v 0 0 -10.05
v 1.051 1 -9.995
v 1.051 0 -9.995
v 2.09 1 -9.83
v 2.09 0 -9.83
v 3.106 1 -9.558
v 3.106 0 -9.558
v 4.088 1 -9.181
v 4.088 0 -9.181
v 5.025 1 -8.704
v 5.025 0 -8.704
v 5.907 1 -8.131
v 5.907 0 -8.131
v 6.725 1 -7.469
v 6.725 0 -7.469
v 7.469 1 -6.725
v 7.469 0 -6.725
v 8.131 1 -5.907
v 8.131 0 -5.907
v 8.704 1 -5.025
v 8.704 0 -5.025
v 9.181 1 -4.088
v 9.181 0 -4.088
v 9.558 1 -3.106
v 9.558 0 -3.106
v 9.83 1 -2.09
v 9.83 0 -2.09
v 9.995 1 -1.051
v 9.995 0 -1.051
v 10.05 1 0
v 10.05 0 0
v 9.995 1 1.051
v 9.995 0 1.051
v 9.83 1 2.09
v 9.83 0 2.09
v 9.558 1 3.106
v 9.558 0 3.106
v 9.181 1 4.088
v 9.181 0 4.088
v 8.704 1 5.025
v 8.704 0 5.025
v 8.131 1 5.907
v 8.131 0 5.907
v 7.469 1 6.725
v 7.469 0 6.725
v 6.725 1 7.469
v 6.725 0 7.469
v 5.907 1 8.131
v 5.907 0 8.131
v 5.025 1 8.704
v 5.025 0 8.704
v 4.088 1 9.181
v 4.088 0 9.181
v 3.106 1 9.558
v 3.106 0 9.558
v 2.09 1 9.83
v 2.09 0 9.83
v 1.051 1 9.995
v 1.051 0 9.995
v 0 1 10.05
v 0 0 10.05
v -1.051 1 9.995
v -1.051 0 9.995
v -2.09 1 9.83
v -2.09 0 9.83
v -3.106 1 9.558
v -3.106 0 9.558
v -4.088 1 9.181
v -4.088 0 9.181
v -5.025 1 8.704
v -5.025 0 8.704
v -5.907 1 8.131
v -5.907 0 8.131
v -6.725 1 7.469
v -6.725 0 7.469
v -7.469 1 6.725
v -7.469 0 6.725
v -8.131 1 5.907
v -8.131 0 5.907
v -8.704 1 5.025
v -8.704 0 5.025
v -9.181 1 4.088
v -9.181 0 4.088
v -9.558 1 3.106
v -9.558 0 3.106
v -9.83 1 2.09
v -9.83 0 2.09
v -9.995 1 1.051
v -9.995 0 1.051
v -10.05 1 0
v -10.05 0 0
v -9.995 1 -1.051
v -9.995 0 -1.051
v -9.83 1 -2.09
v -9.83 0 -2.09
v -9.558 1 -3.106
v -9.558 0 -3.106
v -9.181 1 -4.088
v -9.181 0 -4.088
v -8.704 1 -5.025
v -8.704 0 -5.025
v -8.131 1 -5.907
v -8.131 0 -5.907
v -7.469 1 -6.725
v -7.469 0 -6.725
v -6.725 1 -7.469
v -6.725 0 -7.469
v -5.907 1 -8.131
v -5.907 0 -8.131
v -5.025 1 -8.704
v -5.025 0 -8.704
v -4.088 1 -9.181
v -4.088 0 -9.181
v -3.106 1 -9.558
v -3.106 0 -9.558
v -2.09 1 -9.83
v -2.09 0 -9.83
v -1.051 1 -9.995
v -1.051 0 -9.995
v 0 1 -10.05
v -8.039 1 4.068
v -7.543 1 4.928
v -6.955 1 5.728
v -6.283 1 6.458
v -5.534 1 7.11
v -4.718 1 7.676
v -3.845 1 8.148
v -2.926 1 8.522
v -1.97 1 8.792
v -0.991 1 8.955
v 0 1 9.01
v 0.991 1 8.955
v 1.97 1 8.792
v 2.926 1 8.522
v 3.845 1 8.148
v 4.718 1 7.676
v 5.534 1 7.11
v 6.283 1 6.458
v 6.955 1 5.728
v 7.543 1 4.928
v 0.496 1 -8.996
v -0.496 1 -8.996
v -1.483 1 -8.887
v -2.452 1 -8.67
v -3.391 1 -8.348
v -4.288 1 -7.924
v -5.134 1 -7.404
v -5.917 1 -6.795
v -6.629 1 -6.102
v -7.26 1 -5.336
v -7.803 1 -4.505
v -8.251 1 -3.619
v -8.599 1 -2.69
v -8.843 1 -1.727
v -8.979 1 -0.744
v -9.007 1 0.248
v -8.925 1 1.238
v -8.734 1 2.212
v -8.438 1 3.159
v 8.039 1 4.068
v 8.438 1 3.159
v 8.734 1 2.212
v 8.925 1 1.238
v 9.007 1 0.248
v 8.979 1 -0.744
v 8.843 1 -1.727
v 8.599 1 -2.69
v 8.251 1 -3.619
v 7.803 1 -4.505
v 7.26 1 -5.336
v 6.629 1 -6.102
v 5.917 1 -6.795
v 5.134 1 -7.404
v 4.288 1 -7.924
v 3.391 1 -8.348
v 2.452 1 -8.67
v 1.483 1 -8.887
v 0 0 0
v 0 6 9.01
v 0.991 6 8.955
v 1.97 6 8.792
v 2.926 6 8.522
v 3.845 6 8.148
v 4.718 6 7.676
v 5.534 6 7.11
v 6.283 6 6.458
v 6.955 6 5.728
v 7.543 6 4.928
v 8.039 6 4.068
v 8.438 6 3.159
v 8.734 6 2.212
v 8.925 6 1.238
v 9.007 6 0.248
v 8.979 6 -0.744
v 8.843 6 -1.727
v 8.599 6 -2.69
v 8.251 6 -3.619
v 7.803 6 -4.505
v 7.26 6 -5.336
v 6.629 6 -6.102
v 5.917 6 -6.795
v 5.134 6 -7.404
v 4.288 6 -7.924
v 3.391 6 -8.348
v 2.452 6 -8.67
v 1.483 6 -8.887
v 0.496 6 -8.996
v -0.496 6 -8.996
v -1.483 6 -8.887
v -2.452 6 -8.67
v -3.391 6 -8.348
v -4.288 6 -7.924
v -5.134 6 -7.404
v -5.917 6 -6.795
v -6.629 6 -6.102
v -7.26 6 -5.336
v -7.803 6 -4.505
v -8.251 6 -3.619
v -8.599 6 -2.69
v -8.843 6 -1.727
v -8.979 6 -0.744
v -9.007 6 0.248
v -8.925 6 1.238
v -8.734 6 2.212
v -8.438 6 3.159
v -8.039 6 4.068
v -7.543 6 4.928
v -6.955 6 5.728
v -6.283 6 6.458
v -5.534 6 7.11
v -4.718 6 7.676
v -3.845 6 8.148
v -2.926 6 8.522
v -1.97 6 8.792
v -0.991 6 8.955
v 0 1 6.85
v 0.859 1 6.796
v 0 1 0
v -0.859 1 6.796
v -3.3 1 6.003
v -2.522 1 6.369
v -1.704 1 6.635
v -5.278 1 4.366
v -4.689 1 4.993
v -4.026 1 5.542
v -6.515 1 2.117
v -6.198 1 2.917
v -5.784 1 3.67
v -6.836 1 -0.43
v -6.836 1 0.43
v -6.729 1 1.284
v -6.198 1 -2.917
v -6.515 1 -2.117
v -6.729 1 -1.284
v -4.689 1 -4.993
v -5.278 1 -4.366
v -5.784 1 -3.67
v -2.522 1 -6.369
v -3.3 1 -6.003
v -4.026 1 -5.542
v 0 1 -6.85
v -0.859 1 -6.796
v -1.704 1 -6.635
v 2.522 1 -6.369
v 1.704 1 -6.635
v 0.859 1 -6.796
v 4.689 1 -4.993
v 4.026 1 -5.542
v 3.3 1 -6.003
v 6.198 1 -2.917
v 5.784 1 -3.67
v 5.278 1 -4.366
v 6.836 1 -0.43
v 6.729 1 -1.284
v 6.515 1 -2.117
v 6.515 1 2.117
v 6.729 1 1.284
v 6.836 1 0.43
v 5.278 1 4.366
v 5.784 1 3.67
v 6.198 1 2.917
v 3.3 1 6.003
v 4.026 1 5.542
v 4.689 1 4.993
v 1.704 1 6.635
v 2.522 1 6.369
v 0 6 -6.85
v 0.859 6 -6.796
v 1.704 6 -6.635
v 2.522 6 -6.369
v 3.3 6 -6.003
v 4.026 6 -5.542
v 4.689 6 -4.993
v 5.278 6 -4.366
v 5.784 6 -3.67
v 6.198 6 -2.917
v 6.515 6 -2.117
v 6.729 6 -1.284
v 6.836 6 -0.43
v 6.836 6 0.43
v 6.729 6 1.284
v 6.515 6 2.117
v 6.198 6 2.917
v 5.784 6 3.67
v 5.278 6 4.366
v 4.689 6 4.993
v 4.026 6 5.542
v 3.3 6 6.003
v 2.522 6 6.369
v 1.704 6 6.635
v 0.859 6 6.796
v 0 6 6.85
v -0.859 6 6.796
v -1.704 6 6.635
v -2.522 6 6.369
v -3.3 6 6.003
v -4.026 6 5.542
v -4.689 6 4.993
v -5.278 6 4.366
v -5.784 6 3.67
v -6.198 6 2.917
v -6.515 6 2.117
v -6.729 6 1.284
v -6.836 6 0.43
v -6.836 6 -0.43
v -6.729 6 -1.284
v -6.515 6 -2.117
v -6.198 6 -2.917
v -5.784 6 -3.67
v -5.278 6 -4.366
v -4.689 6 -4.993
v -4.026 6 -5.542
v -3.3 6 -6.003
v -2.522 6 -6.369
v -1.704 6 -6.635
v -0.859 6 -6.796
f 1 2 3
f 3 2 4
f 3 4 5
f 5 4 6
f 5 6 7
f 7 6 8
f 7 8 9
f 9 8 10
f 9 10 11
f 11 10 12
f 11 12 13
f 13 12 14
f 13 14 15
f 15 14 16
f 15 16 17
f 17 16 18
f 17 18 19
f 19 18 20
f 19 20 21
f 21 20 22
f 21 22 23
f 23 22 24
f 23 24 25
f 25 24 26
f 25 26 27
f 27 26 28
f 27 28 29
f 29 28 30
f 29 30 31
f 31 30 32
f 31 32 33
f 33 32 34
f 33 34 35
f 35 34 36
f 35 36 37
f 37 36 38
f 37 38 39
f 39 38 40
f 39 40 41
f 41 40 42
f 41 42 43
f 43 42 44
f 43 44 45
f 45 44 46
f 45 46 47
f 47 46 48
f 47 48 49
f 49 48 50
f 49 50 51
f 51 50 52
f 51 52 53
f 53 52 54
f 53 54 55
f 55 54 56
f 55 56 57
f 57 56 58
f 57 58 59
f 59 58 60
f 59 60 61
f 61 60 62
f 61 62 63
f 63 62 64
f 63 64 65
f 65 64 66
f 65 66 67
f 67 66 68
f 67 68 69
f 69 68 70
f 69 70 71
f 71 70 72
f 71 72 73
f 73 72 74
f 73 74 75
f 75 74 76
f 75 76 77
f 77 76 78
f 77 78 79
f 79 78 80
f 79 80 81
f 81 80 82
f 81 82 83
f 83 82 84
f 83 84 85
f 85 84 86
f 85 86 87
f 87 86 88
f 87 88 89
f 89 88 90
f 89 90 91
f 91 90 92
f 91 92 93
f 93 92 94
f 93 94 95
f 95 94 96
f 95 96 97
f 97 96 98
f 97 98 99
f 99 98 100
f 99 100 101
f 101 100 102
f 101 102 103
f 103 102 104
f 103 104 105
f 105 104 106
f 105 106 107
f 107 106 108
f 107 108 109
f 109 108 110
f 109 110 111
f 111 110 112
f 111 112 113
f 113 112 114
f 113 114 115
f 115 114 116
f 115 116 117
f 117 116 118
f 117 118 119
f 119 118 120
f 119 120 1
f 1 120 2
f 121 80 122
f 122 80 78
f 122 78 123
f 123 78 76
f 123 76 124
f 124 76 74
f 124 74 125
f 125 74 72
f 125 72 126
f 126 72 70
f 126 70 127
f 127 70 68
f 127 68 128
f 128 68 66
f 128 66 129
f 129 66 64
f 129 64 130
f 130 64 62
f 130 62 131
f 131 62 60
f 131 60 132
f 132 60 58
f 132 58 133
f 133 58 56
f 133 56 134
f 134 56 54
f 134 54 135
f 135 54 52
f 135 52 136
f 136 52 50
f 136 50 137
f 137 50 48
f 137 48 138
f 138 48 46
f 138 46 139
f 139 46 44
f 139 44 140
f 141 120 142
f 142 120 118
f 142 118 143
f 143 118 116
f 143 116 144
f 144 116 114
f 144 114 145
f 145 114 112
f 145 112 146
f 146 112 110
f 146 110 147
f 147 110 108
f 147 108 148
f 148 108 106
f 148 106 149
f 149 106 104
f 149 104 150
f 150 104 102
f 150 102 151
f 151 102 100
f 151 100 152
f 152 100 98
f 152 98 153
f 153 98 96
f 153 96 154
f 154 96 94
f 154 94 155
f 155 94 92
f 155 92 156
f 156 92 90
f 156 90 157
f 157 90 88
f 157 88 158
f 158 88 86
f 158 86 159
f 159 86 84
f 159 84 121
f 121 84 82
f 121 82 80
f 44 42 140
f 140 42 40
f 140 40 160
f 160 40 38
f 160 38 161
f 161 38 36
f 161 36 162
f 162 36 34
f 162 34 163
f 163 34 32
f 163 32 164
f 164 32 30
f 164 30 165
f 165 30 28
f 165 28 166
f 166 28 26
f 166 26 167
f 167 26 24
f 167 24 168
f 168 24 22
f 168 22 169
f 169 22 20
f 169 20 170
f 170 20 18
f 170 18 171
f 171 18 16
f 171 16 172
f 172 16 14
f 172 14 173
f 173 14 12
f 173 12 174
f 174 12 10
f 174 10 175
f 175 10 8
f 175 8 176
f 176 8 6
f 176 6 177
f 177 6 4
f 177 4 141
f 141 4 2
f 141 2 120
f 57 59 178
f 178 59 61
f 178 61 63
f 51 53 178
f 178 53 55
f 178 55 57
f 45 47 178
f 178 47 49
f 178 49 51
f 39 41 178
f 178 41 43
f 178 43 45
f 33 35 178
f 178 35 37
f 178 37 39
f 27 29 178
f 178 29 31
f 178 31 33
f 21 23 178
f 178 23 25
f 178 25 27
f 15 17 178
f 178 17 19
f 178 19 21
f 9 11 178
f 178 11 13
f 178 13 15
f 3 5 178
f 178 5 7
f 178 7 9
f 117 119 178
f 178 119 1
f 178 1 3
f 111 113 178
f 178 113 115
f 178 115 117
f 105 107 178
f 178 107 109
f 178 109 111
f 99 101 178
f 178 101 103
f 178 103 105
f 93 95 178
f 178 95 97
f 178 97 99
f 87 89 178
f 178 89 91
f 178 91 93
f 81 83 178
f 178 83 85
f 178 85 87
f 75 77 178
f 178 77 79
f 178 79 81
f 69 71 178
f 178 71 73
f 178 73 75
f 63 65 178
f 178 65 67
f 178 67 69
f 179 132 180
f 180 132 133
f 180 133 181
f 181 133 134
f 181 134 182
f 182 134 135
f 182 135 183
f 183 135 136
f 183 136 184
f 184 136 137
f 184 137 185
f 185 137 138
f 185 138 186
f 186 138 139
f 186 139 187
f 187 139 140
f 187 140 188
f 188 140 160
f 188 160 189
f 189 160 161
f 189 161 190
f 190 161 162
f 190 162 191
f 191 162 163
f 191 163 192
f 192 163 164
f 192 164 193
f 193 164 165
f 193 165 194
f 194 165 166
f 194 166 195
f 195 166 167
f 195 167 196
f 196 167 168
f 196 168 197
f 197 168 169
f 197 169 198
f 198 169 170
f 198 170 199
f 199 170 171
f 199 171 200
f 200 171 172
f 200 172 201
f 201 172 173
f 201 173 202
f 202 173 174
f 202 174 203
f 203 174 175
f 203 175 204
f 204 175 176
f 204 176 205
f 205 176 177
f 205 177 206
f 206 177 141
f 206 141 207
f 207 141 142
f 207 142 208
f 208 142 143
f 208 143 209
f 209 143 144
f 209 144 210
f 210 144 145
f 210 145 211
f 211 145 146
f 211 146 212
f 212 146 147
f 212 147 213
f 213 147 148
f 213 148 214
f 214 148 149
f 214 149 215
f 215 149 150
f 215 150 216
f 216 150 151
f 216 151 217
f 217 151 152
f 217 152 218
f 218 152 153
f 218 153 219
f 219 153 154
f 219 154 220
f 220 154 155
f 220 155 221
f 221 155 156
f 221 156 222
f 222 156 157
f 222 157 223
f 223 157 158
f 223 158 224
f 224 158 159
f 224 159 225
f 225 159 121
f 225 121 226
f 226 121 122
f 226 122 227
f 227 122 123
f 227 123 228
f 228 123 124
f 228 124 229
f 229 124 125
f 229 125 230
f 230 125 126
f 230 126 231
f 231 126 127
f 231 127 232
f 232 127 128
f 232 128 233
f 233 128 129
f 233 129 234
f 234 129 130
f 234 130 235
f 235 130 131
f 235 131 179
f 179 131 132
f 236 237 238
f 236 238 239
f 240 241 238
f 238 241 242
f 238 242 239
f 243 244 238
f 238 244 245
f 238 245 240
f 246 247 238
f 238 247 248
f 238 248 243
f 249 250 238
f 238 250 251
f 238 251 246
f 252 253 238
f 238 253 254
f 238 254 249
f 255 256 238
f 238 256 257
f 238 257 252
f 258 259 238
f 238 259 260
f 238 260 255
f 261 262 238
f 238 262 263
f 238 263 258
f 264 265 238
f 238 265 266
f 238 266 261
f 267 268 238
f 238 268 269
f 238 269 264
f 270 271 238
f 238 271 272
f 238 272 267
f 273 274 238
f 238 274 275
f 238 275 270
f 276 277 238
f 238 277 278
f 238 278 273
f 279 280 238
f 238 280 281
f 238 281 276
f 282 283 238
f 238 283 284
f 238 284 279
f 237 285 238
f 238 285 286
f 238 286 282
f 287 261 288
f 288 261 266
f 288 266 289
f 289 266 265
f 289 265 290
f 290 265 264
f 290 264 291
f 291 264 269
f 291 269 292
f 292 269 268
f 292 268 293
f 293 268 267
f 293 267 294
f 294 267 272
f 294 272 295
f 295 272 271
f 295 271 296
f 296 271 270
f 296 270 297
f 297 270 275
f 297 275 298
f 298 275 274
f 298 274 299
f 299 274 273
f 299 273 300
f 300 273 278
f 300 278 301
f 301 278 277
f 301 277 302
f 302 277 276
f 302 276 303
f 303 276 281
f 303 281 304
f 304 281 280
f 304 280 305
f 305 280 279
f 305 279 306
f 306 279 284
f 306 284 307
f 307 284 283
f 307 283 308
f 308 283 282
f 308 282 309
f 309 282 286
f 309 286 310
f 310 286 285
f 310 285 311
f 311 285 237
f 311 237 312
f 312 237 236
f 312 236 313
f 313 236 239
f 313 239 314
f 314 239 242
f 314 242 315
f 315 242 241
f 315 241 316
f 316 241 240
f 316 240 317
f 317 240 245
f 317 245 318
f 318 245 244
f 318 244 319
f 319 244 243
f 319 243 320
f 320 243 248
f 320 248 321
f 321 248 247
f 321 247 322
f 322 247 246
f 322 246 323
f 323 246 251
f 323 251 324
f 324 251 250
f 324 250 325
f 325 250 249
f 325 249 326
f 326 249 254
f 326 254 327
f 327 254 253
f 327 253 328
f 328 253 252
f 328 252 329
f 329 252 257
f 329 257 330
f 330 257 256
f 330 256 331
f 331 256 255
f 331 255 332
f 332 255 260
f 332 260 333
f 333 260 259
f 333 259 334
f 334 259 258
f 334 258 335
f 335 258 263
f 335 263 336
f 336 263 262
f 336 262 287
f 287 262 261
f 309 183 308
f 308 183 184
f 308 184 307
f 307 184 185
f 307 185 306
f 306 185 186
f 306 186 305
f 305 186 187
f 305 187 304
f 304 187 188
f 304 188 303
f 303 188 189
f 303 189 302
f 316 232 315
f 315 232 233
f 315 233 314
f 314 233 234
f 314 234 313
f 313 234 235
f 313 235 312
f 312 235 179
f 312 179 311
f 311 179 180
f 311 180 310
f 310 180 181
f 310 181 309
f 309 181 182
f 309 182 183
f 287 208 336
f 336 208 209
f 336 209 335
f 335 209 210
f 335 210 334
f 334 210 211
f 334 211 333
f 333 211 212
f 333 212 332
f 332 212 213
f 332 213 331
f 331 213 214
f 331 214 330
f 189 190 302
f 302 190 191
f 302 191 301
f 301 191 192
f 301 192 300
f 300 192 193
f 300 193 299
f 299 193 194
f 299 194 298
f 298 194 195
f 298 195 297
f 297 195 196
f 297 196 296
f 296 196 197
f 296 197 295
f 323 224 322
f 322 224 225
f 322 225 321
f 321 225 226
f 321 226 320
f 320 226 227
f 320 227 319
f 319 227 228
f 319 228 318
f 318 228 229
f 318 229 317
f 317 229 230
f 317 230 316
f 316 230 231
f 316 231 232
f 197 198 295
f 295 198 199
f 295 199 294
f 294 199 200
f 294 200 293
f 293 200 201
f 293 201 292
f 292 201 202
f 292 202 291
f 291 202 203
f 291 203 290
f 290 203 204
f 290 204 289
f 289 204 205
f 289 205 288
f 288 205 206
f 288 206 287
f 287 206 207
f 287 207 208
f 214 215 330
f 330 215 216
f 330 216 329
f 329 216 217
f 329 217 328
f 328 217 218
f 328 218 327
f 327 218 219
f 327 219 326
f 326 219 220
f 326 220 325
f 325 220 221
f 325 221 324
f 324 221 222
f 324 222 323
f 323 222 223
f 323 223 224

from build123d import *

# Parameters (mm, degrees)
SKETCH1_R           = 10.05
BOSS_EXTRUDE1_DEPTH = 1
SKETCH2_R           = 8.85
SKETCH2_R_2         = 6.85
BOSS_EXTRUDE2_DEPTH = 5
BOSS_EXTRUDE4_START = -5
SKETCH3_R           = 8.95
SKETCH3_R_2         = 6.85
BOSS_EXTRUDE4_DEPTH = 5
BOSS_EXTRUDE5_START = -5
SKETCH4_R           = 9.01
SKETCH4_R_2         = 6.85
BOSS_EXTRUDE5_DEPTH = 5


with BuildPart() as part:
    # Sketch1 → Boss-Extrude1 (new body)
    with BuildSketch(Plane(origin=(0, 0, 0), x_dir=(1, 0, 0), z_dir=(0, 1, 0))):
        with Locations(Location((0, 0, 0), (0, 0, 270))):
            Circle(SKETCH1_R)
    extrude(amount=BOSS_EXTRUDE1_DEPTH)

    # Sketch2 → Boss-Extrude2 (add)
    with BuildSketch(Plane(origin=(0, 1, 0), x_dir=(1, 0, 0), z_dir=(0, 1, 0))):
        with Locations(Location((0, 0, 0), (0, 0, 270))):
            Circle(SKETCH2_R)
        with Locations(Location((0, 0, 0), (0, 0, 270))):
            Circle(SKETCH2_R_2, mode=Mode.SUBTRACT)
    extrude(amount=BOSS_EXTRUDE2_DEPTH)

    # Sketch3 → Boss-Extrude4 (add)
    with BuildSketch(Plane(origin=(0, 6, 0), x_dir=(1, 0, 0), z_dir=(0, 1, 0)).offset(BOSS_EXTRUDE4_START)):
        with Locations(Location((0, 0, 0), (0, 0, 270))):
            Circle(SKETCH3_R)
        with Locations(Location((0, 0, 0), (0, 0, 270))):
            Circle(SKETCH3_R_2, mode=Mode.SUBTRACT)
    extrude(amount=BOSS_EXTRUDE4_DEPTH)

    # Sketch4 → Boss-Extrude5 (add)
    with BuildSketch(Plane(origin=(0, 6, 0), x_dir=(1, 0, 0), z_dir=(0, 1, 0)).offset(BOSS_EXTRUDE5_START)):
        with Locations(Location((0, 0, 0), (0, 0, 270))):
            Circle(SKETCH4_R)
        with Locations(Location((0, 0, 0), (0, 0, 270))):
            Circle(SKETCH4_R_2, mode=Mode.SUBTRACT)
    extrude(amount=BOSS_EXTRUDE5_DEPTH)


solid = part.part
